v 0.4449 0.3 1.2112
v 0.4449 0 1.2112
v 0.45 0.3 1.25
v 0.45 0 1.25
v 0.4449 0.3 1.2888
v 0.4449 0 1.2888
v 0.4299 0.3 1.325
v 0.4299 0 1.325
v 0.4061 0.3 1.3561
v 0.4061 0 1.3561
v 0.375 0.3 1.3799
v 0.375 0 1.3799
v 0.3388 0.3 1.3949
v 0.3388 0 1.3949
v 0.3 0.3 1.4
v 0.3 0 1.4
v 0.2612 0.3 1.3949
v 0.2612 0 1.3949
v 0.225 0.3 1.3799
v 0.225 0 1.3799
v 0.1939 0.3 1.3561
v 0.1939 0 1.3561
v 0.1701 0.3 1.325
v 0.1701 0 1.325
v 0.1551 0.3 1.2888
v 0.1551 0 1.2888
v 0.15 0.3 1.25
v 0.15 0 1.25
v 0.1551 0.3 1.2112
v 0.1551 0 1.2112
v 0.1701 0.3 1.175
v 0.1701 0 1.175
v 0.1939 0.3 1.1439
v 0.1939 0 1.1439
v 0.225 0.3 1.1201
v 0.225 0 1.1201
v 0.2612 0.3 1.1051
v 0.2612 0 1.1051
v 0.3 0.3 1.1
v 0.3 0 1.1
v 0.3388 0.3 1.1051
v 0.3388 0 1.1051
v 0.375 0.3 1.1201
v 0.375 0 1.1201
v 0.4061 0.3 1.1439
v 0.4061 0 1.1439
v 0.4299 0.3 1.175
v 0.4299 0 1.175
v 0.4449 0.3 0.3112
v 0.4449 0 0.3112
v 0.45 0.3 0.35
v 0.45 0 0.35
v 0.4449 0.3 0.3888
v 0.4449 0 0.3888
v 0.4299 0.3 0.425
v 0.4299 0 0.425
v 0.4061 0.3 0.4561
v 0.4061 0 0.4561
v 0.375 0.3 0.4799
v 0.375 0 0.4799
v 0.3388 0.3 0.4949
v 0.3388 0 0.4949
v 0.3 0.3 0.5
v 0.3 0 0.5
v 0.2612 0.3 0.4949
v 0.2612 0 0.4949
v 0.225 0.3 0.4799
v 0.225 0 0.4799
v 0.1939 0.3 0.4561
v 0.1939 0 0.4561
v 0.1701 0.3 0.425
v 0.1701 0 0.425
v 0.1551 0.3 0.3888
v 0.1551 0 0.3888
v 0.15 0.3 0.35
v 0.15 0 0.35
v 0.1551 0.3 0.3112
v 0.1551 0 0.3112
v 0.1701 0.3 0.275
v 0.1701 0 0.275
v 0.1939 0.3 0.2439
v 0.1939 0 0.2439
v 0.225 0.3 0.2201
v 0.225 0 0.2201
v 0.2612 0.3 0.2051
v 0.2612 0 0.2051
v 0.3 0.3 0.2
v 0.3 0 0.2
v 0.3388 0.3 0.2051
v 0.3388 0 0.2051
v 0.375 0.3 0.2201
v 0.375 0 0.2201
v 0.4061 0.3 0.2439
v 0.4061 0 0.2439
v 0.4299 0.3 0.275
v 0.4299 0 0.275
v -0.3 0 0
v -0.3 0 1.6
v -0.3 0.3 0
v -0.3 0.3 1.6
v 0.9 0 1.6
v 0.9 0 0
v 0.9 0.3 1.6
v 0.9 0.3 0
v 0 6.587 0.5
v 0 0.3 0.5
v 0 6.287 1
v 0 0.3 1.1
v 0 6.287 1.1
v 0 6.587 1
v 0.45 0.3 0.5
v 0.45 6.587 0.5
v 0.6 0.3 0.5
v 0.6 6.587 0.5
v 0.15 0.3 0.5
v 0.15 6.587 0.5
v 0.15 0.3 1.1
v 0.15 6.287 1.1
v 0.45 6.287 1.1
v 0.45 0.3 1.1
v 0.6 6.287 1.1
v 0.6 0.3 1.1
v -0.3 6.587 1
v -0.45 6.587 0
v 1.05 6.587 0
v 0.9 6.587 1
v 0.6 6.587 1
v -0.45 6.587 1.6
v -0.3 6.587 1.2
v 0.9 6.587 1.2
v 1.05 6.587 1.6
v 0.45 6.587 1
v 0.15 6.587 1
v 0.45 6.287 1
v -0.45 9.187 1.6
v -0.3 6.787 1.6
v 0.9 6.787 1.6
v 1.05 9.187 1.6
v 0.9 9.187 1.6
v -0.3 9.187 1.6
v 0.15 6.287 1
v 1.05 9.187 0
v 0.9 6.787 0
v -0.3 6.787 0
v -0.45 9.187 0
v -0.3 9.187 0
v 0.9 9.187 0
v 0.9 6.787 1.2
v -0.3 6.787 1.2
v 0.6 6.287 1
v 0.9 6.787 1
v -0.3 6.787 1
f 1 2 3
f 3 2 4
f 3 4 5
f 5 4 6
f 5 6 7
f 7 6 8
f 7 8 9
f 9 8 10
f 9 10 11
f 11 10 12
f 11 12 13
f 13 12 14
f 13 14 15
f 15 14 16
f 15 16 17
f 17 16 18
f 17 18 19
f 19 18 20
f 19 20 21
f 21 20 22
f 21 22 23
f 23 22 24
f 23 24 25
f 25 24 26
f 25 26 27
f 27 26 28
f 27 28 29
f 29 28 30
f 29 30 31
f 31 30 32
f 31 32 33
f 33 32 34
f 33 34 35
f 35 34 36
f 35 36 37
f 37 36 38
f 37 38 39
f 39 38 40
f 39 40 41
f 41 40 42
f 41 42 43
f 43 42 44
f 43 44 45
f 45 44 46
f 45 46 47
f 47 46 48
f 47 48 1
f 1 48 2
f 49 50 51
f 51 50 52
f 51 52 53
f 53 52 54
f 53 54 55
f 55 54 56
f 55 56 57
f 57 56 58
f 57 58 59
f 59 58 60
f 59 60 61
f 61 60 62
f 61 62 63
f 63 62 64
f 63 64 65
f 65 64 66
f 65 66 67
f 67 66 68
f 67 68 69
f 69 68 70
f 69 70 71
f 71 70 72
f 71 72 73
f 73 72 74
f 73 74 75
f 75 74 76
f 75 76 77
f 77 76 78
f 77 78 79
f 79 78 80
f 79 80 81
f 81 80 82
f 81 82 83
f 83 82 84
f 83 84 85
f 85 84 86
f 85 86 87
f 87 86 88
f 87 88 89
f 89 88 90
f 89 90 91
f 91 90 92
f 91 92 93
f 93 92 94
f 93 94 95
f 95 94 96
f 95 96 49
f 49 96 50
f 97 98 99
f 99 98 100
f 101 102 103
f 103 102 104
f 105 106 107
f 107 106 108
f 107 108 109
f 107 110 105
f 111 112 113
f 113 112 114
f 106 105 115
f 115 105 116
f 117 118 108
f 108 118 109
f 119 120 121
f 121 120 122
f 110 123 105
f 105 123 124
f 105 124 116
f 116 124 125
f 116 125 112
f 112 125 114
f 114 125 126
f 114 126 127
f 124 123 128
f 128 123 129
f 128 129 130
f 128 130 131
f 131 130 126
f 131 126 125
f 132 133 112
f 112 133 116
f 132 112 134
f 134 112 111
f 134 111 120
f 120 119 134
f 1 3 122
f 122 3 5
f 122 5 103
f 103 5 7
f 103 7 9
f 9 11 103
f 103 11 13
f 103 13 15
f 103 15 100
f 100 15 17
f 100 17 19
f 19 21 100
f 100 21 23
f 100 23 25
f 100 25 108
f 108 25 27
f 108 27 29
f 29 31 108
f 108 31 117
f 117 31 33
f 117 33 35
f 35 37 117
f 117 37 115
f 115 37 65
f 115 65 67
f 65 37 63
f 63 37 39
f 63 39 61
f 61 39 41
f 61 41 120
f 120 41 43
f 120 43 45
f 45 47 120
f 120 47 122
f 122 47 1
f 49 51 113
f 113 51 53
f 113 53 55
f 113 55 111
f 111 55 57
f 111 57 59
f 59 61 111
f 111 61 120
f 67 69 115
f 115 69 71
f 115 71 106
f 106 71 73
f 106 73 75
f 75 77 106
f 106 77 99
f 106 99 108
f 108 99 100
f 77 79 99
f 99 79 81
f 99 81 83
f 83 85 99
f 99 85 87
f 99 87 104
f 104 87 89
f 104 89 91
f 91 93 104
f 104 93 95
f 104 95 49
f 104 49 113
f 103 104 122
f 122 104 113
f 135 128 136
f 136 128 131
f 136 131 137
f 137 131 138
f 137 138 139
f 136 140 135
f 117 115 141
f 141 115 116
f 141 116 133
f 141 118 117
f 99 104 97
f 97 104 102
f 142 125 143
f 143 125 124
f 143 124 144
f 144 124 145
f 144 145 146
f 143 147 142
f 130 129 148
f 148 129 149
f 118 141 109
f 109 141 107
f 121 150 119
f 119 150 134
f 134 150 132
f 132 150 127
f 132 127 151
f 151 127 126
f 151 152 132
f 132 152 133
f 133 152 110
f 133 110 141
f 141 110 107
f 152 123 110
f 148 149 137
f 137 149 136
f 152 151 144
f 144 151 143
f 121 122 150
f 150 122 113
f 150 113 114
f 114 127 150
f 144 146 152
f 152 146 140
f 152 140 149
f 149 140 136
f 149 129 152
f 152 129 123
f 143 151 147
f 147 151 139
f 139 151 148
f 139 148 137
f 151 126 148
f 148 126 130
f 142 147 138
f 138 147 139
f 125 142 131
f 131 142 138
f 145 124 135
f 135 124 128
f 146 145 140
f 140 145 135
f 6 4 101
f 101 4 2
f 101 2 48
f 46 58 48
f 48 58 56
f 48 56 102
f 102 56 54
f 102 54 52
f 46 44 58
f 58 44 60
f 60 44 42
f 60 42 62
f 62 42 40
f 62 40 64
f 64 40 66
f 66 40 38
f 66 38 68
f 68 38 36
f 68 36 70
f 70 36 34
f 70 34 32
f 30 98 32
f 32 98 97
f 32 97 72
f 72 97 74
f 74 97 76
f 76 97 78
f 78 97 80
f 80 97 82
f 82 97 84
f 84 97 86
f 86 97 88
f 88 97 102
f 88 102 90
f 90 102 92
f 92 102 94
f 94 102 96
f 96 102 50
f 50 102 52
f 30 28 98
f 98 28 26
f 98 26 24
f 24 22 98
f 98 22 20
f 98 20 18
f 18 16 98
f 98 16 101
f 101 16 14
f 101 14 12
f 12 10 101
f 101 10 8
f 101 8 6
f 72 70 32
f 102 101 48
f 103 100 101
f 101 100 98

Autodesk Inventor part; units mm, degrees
ref_plane "YZ Plane" through (0, 0, 0) normal (1, 0, 0) x (0, 1, 0)
ref_plane "XZ Plane" through (0, 0, 0) normal (0, 1, 0) x (-1, 0, 0)
ref_plane "XY Plane" through (0, 0, 0) normal (0, 0, 1) x (1, 0, 0)
sketch "Boceto1" plane through (0, 0, 0) normal (0, 0, 1) x (1, 0, 0)
  line L0 (-0.3, 9.187) -> (-0.3, 6.787)
  line L1 (-0.3, 6.787) -> (0.9, 6.787)
  line L2 (0.9, 6.787) -> (0.9, 9.187)
  line L3 (0.9, 9.187) -> (1.05, 9.187)
  line L4 (1.05, 9.187) -> (1.05, 6.587)
  line L5 (0, 6.587) -> (-0.45, 6.587)
  line L6 (-0.45, 6.587) -> (-0.45, 9.187)
  line L7 (-0.45, 9.187) -> (-0.3, 9.187)
  line L8 (0.6, 0) -> (0.6, 6.587)
  line L9 (0.45, 6.587) -> (0.15, 6.587)
  line L10 (0, 6.587) -> (0, 0)
  line L11 (0, 0.3) -> (0.6, 0.3)
  line L12 (0.15, 0.3) -> (0.15, 6.587)
  line L13 (0.45, 0.3) -> (0.45, 6.587)
  line L14 (0.6, 6.587) -> (1.05, 6.587)
  line L15 (0, 0) -> (0.6, 0)
  point P0 (0, 0)
extrude "Extrusión1" add sketch "Boceto1" along normal blind 1.6 contours L0 L1 L2 L3 L4 L14 L8 L11 L13 L9 L12 L10 L5 L6 L7 | L11 L8 L15 L10
sketch "Boceto2" plane through (-0.3, 6.787, 0) normal (0, 1, 0) x (1, 0, 0)
  line L0 (1.2, 0) -> (0, 0) projected
  line L1 (0, 0) -> (0, -1.6) projected
  line L2 (1.2, -1.6) -> (0, -1.6) projected
  line L3 (1.2, 0) -> (1.2, -1.6) projected
  line L4 (0, -1.6) -> (0, -1.2)
  line L5 (0, -1.2) -> (0, -1)
  line L6 (0, -1) -> (1.2, -1)
  line L7 (1.2, 0) -> (1.2, -1.6) projected
  line L8 (0, -1.2) -> (1.2, -1.2)
  line L9 (1.2, -1.2) -> (1.2, -1)
  point P0 (0.3, 0)
  dimension "d2" = 0.4
  dimension "d3" = 0.2
  dimension "d4" = 1.2
extrude "Extrusión2" cut sketch "Boceto2" against normal blind 0.5 contours L3 L8 L1 L6
sketch "Boceto3" plane through (0.6, 0, 0) normal (1, 0, 0) x (0, 0, -1)
  line L0 (-1.6, 0.3) -> (0, 0.3) projected
  line L1 (-1, 6.587) -> (-1, 6.287) projected
  line L2 (-1, 6.287) -> (-1.2, 6.287) projected
  line L3 (-1.2, 6.287) -> (-1.2, 6.587) projected
  line L4 (-1.2, 6.587) -> (-1.6, 6.587) projected
  line L5 (-1.6, 0) -> (-1.6, 6.587) projected
  line L6 (0, 0) -> (-1.6, 0) projected
  line L7 (0, 0) -> (0, 6.587) projected
  line L8 (0, 6.587) -> (-1, 6.587) projected
  line L9 (-1.6, 0.3) -> (-1.6, 6.587) projected
  line L10 (-1.6, 0.3) -> (-1.2, 0.3)
  line L11 (-1.2, 0.3) -> (-1.2, 6.587)
  line L12 (-1.6, 6.587) -> (-1.2, 6.587)
  line L13 (-1.2, 6.587) -> (-1.2, 0.3)
  line L14 (-1.2, 0.3) -> (-1.6, 0.3)
  line L15 (-1.6, 0.3) -> (-1.6, 6.587)
  line L16 (0, 0.3) -> (0, 6.587) projected
  line L17 (0, 0.3) -> (-0.4, 0.3)
  line L18 (0, 0.3) -> (-1.6, 0.3) projected
  line L19 (0, 6.587) -> (-1.6, 6.587) projected
  line L20 (0, 6.587) -> (-0.4, 6.587)
  line L21 (-0.4, 6.587) -> (-0.4, 0.3)
  line L22 (-0.4, 0.3) -> (0, 0.3)
  line L23 (0, 0.3) -> (0, 6.587)
  point P0 (0, 0)
  dimension "d7" = 0.4
  dimension "d8" = 0.4
extrude "Extrusión3" cut sketch "Boceto3" against normal blind 0.9 contours L5 L4 L3 L11 L0 | L21 L8 L7 L0
sketch "Boceto4" plane through (0, 0.3, 0) normal (0, 1, 0) x (1, 0, 0)
  line L0 (0, 0) -> (0.6, 0) projected
  line L1 (0.6, 0) -> (0.6, -1.6) projected
  line L2 (0, -1.6) -> (0.6, -1.6) projected
  line L3 (0, 0) -> (0, -1.6) projected
  line L4 (0, -1.6) -> (0.6, -1.6) projected
  circle A0 centre (0.3, -1.35) radius 0.15
  line L5 (0, 0) -> (0, -1.6) projected
  circle A1 centre (0.3, -0.25) radius 0.15
  dimension "d12" = 0.3
extrude "Extrusión4" cut sketch "Boceto4" against normal blind 10 contours A0 | A1
sketch "Boceto5" plane through (0.6, 0, 0) normal (1, 0, 0) x (0, 0, -1)
  line L0 (-1.2, 0.3) -> (-1.6, 0.3) projected
  line L1 (-1.6, 0) -> (-1.6, 0.3) projected
  line L2 (0, 0) -> (-1.6, 0) projected
  line L3 (0, 0) -> (0, 0.3) projected
  line L4 (0, 0.3) -> (-0.4, 0.3) projected
  line L5 (-0.4, 0.3) -> (-0.4, 6.587) projected
  line L6 (-0.4, 6.587) -> (-1, 6.587) projected
  line L7 (-1, 6.587) -> (-1, 6.287) projected
  line L8 (-1, 6.287) -> (-1.2, 6.287) projected
  line L9 (-1.2, 6.287) -> (-1.2, 0.3) projected
  line L10 (-1.2, 6.287) -> (-1.2, 0.3) projected
  line L11 (-1.2, 6.287) -> (-1.1, 6.287)
  line L12 (-1, 6.287) -> (-1.2, 6.287) projected
  line L13 (-1.2, 0.3) -> (-1.1, 0.3)
  line L14 (-1.1, 0.3) -> (-1.1, 6.287)
  line L15 (-0.4, 0.3) -> (-0.5, 0.3)
  line L16 (-0.4, 0.3) -> (-1.2, 0.3) projected
  line L17 (-0.5, 0.3) -> (-0.5, 6.587)
  line L18 (-0.4, 0.3) -> (-0.4, 6.587) projected
  line L19 (-0.4, 6.587) -> (-0.4, 0.3)
  line L20 (-1.2, 0.3) -> (-1.2, 6.287)
  point P0 (0, 0)
  dimension "d15" = 0.1
  dimension "d16" = 0.1
  dimension "d17" = 0.1
extrude "Extrusión5" cut sketch "Boceto5" against normal blind 10 contours L9 L8 L14 L13 | L17 L6 L5 L15
sketch "Boceto6" plane through (0, 0, 0) normal (0, -1, 0) x (1, 0, 0)
  line L0 (0.9, 1.6) -> (0.9, 0)
  line L1 (0.9, 0) -> (-0.3, 0)
  line L2 (-0.3, 0) -> (-0.3, 1.6)
  line L3 (-0.3, 1.6) -> (0.9, 1.6)
  circle A0 centre (0.3, 1.25) radius 0.15
  circle A1 centre (0.3, 0.35) radius 0.15
  line L4 (0, 1.6) -> (0.6, 1.6) projected
  line L5 (0, 0) -> (0.6, 0) projected
extrude "Extrusión6" add sketch "Boceto6" against normal blind 0.3 contours L0 L1 L2 L3 | A0 | A1
sketch "Boceto7" plane through (0.9, 0, 0) normal (0, -1, 0) x (1, 0, 0)
  line L0 (0, 1.6) -> (0, 0)
  line L1 (0, 0) -> (-1.2, 0)
  line L2 (-1.2, 0) -> (-1.2, 1.6)
  line L3 (-1.2, 1.6) -> (0, 1.6)
  circle A0 centre (-0.6, 1.25) radius 0.15
  circle A1 centre (-0.6, 0.35) radius 0.15
  line L4 (-0.9, 1.6) -> (-0.3, 1.6)
  line L5 (-0.9, 0) -> (-0.3, 0)
  line L6 (-1.2, 0) -> (-1.2, 1.6) projected
  point P0 (-0.9, 0)
extrude "Extrusión7" cut sketch "Boceto7" against normal blind 0.5 contours A0 | A1
properties part number "learnbotAgarreServo"
